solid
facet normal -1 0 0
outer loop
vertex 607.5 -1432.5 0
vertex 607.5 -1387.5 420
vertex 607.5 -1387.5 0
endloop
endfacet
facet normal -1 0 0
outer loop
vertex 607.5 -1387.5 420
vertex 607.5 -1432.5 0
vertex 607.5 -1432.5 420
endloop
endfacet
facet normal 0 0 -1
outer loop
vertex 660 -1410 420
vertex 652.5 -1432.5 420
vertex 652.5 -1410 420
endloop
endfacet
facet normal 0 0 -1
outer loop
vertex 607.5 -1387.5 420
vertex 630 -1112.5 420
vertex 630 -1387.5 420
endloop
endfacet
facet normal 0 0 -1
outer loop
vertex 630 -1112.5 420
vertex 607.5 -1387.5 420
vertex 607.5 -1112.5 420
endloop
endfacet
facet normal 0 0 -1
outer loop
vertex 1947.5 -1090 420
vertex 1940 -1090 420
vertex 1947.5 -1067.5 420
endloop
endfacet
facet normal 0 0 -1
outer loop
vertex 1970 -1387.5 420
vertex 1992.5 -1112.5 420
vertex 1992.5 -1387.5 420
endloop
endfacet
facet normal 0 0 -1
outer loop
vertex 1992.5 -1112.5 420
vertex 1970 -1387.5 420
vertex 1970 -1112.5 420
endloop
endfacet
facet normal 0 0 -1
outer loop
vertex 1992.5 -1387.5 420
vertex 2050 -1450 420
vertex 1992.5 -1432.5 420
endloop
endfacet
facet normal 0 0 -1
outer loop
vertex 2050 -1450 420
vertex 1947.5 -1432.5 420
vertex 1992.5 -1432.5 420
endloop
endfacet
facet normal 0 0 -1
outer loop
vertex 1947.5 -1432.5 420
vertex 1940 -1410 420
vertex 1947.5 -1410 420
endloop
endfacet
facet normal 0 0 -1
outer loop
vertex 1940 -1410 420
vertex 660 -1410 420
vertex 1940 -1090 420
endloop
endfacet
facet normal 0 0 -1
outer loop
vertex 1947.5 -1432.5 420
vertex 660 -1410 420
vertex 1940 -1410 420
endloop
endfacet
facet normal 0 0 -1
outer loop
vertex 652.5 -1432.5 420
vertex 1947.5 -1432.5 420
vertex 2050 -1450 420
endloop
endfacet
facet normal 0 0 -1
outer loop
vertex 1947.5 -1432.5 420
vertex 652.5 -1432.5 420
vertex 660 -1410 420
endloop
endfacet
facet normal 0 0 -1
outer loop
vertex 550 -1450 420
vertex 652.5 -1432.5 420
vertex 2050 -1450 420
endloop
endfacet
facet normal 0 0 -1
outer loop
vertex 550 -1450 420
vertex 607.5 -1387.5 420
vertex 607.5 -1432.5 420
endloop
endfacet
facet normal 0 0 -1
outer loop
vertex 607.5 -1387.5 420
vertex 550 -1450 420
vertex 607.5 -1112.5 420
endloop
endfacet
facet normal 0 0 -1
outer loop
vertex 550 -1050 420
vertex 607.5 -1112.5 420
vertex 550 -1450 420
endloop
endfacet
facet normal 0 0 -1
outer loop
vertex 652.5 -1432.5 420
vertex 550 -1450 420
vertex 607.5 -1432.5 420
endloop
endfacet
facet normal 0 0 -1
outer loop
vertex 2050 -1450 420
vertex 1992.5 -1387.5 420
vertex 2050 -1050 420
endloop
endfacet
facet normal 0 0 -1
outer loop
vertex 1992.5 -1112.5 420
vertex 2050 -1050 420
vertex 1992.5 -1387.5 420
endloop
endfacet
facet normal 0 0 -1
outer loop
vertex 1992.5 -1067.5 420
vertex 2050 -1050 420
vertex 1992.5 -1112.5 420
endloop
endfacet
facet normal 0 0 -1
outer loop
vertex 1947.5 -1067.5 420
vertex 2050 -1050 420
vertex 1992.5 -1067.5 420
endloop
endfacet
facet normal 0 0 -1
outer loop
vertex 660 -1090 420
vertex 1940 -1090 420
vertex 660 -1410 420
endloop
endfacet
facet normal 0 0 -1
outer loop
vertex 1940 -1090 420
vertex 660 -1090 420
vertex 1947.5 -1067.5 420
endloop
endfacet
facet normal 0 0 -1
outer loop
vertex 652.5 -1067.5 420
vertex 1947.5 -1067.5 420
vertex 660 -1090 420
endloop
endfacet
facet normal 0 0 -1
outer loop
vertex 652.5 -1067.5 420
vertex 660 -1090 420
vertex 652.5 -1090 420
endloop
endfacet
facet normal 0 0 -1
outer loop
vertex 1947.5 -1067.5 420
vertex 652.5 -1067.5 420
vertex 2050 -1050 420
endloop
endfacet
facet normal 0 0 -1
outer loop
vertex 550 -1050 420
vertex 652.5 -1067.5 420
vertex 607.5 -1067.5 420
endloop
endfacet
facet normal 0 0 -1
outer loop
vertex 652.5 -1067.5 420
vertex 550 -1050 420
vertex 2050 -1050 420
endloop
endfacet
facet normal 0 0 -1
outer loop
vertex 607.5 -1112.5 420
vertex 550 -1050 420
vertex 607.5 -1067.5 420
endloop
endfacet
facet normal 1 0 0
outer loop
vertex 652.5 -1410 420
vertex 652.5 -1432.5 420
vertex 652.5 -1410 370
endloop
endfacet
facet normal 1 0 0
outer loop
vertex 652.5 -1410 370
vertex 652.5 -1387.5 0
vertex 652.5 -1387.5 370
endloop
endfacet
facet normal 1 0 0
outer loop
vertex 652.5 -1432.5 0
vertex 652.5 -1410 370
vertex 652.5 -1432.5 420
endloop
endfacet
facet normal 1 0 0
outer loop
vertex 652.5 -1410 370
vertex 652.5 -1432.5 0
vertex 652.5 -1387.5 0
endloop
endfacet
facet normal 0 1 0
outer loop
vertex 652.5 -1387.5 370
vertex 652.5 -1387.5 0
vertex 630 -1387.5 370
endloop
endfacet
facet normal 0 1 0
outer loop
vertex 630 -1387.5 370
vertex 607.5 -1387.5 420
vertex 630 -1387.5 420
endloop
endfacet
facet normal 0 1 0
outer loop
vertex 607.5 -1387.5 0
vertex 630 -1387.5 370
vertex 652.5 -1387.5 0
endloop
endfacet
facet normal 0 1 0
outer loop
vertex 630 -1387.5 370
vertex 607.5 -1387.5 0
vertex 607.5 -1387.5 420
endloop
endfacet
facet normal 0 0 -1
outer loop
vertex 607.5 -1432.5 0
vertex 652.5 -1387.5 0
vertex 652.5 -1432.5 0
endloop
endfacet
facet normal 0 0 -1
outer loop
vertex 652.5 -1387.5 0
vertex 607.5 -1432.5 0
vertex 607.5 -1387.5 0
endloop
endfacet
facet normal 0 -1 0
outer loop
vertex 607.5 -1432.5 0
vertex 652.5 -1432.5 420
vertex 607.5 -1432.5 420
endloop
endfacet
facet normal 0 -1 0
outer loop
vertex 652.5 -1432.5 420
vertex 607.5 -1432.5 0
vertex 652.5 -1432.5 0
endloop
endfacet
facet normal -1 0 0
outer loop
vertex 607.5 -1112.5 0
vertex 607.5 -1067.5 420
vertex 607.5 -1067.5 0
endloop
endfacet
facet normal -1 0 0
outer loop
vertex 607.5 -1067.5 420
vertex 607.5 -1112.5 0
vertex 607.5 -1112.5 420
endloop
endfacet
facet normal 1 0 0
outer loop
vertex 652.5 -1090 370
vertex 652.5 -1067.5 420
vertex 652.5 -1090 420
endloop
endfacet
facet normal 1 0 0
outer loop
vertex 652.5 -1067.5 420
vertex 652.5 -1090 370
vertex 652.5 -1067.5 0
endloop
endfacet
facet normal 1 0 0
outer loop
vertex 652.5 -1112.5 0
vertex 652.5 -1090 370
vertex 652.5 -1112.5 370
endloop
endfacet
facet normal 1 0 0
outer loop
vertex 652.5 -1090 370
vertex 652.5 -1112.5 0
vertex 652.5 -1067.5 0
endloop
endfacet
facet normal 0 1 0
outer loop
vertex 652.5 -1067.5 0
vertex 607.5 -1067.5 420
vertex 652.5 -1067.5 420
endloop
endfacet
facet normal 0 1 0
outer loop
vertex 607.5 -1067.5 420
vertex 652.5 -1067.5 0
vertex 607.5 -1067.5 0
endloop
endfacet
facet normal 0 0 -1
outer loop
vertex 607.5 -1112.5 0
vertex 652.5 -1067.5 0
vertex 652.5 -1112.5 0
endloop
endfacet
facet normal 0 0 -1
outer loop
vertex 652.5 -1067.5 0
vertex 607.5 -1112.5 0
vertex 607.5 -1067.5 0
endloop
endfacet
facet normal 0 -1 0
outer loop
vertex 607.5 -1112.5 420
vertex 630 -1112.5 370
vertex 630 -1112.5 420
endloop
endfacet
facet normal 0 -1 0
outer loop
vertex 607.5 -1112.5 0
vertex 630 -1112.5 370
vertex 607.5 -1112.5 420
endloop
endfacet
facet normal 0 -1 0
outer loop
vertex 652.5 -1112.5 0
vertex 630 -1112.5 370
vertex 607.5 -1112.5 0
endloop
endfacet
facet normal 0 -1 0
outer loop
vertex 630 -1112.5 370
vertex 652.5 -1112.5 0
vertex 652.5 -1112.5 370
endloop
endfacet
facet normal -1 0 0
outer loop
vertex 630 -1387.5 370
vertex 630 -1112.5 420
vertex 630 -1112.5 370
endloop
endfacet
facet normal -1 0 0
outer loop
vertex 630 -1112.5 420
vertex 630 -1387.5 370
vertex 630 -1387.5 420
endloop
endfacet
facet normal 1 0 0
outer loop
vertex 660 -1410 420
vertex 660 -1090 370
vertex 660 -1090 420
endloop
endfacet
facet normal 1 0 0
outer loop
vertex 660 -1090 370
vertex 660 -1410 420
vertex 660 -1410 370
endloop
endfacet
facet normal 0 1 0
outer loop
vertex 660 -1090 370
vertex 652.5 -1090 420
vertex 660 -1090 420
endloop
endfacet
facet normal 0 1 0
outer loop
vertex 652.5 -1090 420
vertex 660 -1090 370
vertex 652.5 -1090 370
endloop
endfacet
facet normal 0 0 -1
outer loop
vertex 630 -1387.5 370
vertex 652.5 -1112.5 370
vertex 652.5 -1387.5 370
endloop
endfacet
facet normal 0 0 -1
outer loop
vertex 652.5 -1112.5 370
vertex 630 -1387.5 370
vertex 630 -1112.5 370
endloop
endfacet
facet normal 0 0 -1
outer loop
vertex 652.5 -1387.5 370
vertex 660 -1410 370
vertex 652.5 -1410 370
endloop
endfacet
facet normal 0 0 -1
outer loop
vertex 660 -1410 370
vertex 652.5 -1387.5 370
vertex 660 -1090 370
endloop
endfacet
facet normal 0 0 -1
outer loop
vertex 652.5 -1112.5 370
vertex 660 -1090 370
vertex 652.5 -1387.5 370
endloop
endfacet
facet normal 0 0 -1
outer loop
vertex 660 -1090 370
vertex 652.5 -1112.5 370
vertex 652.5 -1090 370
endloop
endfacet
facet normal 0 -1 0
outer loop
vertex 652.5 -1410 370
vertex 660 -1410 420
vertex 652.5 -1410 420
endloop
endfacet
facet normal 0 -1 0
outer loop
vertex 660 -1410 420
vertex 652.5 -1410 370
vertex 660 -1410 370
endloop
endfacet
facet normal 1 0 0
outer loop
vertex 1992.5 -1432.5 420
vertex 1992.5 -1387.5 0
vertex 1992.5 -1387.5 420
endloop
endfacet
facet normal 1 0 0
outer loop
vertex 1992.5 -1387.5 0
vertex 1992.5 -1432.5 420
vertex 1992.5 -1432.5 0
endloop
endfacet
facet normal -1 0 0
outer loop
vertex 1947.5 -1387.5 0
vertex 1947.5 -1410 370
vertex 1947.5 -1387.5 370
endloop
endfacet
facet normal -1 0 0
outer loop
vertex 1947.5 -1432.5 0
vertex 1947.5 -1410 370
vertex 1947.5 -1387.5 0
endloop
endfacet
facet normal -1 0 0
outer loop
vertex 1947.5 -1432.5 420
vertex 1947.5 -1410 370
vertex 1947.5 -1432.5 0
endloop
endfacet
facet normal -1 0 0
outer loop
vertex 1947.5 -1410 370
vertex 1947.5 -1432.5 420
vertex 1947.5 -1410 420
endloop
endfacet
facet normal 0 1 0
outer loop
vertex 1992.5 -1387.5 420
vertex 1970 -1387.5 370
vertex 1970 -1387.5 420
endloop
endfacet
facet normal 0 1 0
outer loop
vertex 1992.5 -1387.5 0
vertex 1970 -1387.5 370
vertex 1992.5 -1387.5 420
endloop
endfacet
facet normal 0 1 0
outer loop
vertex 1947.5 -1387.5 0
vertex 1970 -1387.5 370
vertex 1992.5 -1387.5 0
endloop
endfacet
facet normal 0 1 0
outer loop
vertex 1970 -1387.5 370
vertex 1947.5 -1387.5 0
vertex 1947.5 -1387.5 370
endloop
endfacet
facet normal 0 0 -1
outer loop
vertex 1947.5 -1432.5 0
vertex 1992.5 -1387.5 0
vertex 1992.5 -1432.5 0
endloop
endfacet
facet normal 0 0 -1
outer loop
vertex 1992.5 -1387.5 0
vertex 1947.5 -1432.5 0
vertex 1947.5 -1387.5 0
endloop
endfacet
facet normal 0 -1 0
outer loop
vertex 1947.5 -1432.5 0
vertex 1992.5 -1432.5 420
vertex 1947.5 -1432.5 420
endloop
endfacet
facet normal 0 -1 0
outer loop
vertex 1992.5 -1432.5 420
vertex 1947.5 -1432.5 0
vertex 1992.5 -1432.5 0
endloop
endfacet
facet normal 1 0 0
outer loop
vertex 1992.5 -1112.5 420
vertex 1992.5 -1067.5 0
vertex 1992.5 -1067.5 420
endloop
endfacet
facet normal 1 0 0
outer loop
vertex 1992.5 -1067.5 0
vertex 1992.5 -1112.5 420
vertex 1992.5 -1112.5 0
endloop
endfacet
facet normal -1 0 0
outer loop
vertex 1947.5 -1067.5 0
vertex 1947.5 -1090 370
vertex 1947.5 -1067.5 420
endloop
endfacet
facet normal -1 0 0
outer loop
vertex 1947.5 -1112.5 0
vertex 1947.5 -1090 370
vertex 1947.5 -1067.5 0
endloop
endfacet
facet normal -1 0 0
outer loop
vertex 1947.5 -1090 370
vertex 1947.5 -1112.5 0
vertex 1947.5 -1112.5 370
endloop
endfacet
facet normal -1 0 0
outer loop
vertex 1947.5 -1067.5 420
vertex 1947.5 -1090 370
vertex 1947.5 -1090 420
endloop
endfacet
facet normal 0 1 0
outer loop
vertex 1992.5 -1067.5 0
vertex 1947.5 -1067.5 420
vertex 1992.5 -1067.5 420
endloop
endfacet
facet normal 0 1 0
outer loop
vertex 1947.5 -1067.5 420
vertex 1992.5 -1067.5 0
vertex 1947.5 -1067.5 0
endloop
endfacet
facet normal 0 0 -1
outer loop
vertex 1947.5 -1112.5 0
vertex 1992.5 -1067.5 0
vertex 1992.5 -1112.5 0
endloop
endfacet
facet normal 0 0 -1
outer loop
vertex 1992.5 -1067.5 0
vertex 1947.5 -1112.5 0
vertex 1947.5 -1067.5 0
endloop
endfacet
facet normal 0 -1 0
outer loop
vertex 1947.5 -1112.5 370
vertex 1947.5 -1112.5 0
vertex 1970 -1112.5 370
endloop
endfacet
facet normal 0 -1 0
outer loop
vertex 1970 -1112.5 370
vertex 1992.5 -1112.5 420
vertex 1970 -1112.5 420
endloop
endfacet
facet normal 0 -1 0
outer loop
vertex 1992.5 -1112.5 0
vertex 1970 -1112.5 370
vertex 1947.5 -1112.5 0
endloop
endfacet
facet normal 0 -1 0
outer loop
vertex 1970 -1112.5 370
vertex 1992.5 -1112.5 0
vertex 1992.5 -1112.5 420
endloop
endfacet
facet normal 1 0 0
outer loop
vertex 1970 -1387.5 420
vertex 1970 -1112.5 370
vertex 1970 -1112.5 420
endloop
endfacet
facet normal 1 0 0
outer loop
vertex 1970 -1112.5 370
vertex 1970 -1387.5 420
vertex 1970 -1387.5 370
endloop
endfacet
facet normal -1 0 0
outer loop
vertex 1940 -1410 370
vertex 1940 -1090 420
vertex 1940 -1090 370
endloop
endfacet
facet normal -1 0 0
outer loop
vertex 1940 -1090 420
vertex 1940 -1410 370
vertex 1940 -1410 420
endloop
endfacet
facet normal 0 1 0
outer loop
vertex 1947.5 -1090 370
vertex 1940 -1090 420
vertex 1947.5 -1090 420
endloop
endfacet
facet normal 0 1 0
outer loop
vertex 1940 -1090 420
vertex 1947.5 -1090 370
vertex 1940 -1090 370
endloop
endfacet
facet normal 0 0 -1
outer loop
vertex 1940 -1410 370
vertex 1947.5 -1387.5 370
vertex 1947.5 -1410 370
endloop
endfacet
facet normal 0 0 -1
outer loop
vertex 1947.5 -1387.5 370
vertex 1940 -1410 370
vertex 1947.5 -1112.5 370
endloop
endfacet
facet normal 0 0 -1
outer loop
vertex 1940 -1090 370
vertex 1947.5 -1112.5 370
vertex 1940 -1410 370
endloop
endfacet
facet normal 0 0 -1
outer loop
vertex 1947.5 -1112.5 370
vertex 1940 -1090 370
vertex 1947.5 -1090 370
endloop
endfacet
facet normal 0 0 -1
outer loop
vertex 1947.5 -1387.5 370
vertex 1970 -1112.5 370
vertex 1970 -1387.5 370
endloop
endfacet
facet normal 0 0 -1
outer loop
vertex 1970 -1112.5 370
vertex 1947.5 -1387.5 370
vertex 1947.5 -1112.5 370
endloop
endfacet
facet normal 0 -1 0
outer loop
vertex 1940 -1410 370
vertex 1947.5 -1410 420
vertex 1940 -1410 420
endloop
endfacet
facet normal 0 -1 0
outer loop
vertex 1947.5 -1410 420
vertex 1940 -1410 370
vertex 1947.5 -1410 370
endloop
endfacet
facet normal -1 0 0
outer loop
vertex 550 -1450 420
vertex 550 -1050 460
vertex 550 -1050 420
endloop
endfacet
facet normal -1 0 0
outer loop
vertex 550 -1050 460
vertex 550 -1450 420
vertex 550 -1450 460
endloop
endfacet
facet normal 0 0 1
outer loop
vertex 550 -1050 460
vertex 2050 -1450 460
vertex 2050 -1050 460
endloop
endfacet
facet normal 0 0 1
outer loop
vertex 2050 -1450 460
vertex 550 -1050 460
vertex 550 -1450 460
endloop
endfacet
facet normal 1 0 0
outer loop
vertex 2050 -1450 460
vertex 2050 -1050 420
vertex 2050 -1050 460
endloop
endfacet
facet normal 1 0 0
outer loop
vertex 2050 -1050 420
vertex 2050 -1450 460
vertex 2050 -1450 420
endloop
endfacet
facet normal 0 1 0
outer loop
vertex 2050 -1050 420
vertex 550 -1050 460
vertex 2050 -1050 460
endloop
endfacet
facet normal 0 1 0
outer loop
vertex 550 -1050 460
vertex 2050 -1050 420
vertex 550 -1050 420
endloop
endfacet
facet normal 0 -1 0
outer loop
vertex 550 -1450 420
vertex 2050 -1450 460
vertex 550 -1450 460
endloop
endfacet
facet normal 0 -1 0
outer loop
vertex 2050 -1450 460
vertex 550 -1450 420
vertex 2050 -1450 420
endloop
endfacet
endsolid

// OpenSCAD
// file: tea_shop_furniture_parameters.scad
// =============================================================================
// TEA SHOP DIORAMA — GROUP 6: EXTERIOR FURNITURE PARAMETERS
// =============================================================================
// All units: mm (1000 mm = 1.0 m), 1:1 real-world scale (1000 units = 1 GTA unit).
// Shared global coordinate system (identical to Groups 1–5):
//   +X -> left -> right  (0 = left outer wall, BUILD_W = right outer wall)
//   +Y -> front -> back  (0 = front wall eave face, BUILD_D = back wall, porch in -Y)
//   +Z -> up             (0 = top surface of base slab / ground datum)
// =============================================================================

// =============================================================================
// 1. SHARED GLOBAL VARIABLES (Reused from Groups 1–5 — identical values)
// =============================================================================
WALL_T             = 250;   // wall panel thickness                      (0.25 m)
BUILD_W            = 6000;  // building width along X                    (6.00 m)
BUILD_D            = 4000;  // building depth along Y                    (4.00 m)
FRONT_H            = 2400;  // wall height at FRONT eave (short side)    (2.40 m)
WIN_X              = 600;   // left pier width / window start X datum    (0.60 m)
WIN_W              = 3400;  // service window width                      (3.40 m)
SILL_H             = 900;   // knee-wall sill height beneath window      (0.90 m)
BASE_H             = 200;   // base plinth vertical thickness            (0.20 m)
BASE_MARGIN_FRONT  = 3000;  // front porch slab depth (extends to Y=-3m) (3.00 m)

// Aliases for compatibility with earlier group files:
wall_thickness     = WALL_T;
building_width     = BUILD_W;
building_depth     = BUILD_D;
front_eave_height  = FRONT_H;
sill_height        = SILL_H;
base_front_margin  = BASE_MARGIN_FRONT;


// =============================================================================
// 2. GROUP 6 PARAMETERS — BENCH (Long Wooden Porch Bench)
// =============================================================================
// REFERENCE OBSERVATIONS (Images: page 1/2 daylight/night, page 5 clay,
// page 7 front elevation, page 8 wireframe, page 14 eye-level):
//
// 1. Bench Style & Proportions:
//    - Simple utilitarian Indian roadside tea stall wooden bench.
//    - Single flat solid rectangular wooden plank for the seat.
//    - Two leg assemblies (one at each end). Wireframe (page 8) and clay (page 5)
//      confirm each leg pair is NOT a solid A-frame slab, but TWO straight
//      square timber posts tied together under the seat by a horizontal cross
//      apron rail. The posts are vertical (0 deg angle) with inset mounting.
//    - Bench height is roughly half the window sill height:
//      SILL_H = 900 mm -> BENCH_HEIGHT = 460 mm (~18 inches standard seating).
//    - Bench length spans ~1500 mm, comfortably seating 3-4 patrons.
//    - Bench width is ~400 mm (standard 16-inch bench seat).
//
// [ESTIMATED DIMENSIONS NOTE]:
// - Bench top thickness (40 mm) estimated from front elevation pixel ratio
//   (~1/11 of bench height).
// - Leg post cross-section (45x45 mm) estimated from wireframe edge density.
// - Inset of legs from ends (80 mm) and edges (17.5 mm) estimated from clay shot.
// - Bench X position (X = 550 mm) sits under the left pier and left edge of
//   the service window, leaving clear passage to the counter and door.
// - Bench Y position (Y = -1250 mm) sits centrally under the pergola canopy
//   (between wall Y=0 and front post line Y=-2250 mm).
BENCH_LENGTH          = 1500; // bench seat plank length along X (mm)
BENCH_WIDTH           = 400;  // bench seat plank width along Y (mm)
BENCH_HEIGHT          = 460;  // total seat height from ground (Z=0) to top face (mm)
BENCH_TOP_THICKNESS   = 40;   // thickness of seat top plank (mm)

// Bench Leg Pair (2 posts + top cross apron rail per end):
BENCH_LEG_SIZE        = 45;   // square timber leg cross-section (45x45 mm)
BENCH_LEG_ANGLE       = 0;    // leg angle from vertical (0 deg = straight vertical posts)
BENCH_LEG_PAIR_WIDTH  = 320;  // center-to-center span across Y of the 2 end legs (mm)
                              // Outer edge-to-edge span = 320 + 45 = 365 mm
                              // Leaves (400 - 365)/2 = 17.5 mm front/back overhang
BENCH_LEG_INSET_X     = 80;   // inset of leg center from left/right plank ends (mm)
BENCH_APRON_WIDTH     = 30;   // thickness of horizontal cross apron rail along X (mm)
BENCH_APRON_HEIGHT    = 50;   // vertical height of horizontal cross apron rail (mm)

// Bench Porch Placement (World Coordinates):
BENCH_POS_X           = 550;  // left edge X coordinate of bench top (mm)
BENCH_POS_Y           = -1250;// center Y coordinate of bench (mm)
                              // Back edge is at Y = -1050 mm, Front edge at Y = -1450 mm
BENCH_ROT_Z           = 0;    // rotation angle about Z (0 = parallel to front wall)


// =============================================================================
// 3. GROUP 6 PARAMETERS — STOOLS (Round Wooden Porch Stools)
// =============================================================================
// REFERENCE OBSERVATIONS (Images: page 1/2, page 5 clay, page 7 elevation,
// page 8 wireframe, page 13 interior close-up, page 14 eye-level):
//
// 1. Stool Style & Proportions:
//    - Round wooden top seat disc with bevel/slight chamfer, resting on
//      4 splayed square timber legs.
//    - Polycount optimization: 12-sided cylinder ( = 12) provides a clean,
//      authentic round silhouette while keeping polycount low for GTA V MLO props.
//    - Stool height is 450 mm (level with the bench, exactly half the 900mm sill).
//    - Seat diameter is 300 mm (~12 inches), standard for street tea stalls.
//    - Legs splay outward slightly from under the seat disc (angle ~3.5 deg),
//      ensuring stability while remaining inside the seat diameter footprint at the base.
//
// 2. Stool Clustering Layout:
//    - The reference images show 3 stools clustered together directly in front of
//      the counter window (X = 2500..3400 mm), where patrons sit to drink tea.
//    - They are NOT placed on a rigid grid:
//        * Stool 1: [2550, -1550] — front-left of the cluster, closer to walkway
//        * Stool 2: [2850, -1050] — back-mid of the cluster, closer to counter window
//        * Stool 3: [3350, -1400] — front-right of the cluster, near entrance path
//
// [ESTIMATED DIMENSIONS NOTE]:
// - Seat thickness (35 mm) estimated from front elevation and wireframe.
// - Leg cross-section (30x30 mm) estimated from wireframe edge density.
// - Splay angle (3.5 deg) estimated from wireframe slope relative to vertical.
STOOL_HEIGHT          = 450;  // total height to top of stool seat (mm)
STOOL_SEAT_DIA        = 300;  // round seat disc diameter (mm)
STOOL_SEAT_RADIUS     = STOOL_SEAT_DIA / 2; // 150 mm
STOOL_SEAT_THICKNESS  = 35;   // seat disc thickness (mm)

// Stool Leg Dimensions:
STOOL_LEG_SIZE        = 30;   // square timber leg cross-section (30x30 mm)
STOOL_LEG_SPLAY_ANGLE = 3.5;  // outward splay angle from vertical (degrees)
STOOL_LEG_RADIUS_TOP  = 95;   // radial distance of leg center from stool center at top (mm)
                              // Leaves 150 - (95 + 15) = 40 mm seat lip overhang

// Derived stool leg length along its angled axis:
STOOL_LEG_H           = STOOL_HEIGHT - STOOL_SEAT_THICKNESS; // vertical leg span (415 mm)
STOOL_LEG_LEN         = STOOL_LEG_H / cos(STOOL_LEG_SPLAY_ANGLE); // angled length (~415.78 mm)

// Low-poly curvature resolution for MLO optimization:
STOOL_FN              = 12;   // 12-sided polygon for round seat disc (MLO target)

// Stool Positions Array (3 clustered [X, Y] coordinates on the porch):
STOOL_POSITIONS = [
    [2550, -1550],  // Stool 1: Front-Left
    [2850, -1050],  // Stool 2: Back-Mid (near counter)
    [3350, -1400]   // Stool 3: Front-Right (near entrance)
];
// main file
// =============================================================================
// TEA SHOP DIORAMA — GROUP 6: BENCH (COMPLETE)
// =============================================================================
// Standalone export for the complete exterior porch bench.
// Positioned directly in world coordinates on top of the base slab.
// =============================================================================

include <tea_shop_furniture_modules.scad>;

bench(world_pos = true);
